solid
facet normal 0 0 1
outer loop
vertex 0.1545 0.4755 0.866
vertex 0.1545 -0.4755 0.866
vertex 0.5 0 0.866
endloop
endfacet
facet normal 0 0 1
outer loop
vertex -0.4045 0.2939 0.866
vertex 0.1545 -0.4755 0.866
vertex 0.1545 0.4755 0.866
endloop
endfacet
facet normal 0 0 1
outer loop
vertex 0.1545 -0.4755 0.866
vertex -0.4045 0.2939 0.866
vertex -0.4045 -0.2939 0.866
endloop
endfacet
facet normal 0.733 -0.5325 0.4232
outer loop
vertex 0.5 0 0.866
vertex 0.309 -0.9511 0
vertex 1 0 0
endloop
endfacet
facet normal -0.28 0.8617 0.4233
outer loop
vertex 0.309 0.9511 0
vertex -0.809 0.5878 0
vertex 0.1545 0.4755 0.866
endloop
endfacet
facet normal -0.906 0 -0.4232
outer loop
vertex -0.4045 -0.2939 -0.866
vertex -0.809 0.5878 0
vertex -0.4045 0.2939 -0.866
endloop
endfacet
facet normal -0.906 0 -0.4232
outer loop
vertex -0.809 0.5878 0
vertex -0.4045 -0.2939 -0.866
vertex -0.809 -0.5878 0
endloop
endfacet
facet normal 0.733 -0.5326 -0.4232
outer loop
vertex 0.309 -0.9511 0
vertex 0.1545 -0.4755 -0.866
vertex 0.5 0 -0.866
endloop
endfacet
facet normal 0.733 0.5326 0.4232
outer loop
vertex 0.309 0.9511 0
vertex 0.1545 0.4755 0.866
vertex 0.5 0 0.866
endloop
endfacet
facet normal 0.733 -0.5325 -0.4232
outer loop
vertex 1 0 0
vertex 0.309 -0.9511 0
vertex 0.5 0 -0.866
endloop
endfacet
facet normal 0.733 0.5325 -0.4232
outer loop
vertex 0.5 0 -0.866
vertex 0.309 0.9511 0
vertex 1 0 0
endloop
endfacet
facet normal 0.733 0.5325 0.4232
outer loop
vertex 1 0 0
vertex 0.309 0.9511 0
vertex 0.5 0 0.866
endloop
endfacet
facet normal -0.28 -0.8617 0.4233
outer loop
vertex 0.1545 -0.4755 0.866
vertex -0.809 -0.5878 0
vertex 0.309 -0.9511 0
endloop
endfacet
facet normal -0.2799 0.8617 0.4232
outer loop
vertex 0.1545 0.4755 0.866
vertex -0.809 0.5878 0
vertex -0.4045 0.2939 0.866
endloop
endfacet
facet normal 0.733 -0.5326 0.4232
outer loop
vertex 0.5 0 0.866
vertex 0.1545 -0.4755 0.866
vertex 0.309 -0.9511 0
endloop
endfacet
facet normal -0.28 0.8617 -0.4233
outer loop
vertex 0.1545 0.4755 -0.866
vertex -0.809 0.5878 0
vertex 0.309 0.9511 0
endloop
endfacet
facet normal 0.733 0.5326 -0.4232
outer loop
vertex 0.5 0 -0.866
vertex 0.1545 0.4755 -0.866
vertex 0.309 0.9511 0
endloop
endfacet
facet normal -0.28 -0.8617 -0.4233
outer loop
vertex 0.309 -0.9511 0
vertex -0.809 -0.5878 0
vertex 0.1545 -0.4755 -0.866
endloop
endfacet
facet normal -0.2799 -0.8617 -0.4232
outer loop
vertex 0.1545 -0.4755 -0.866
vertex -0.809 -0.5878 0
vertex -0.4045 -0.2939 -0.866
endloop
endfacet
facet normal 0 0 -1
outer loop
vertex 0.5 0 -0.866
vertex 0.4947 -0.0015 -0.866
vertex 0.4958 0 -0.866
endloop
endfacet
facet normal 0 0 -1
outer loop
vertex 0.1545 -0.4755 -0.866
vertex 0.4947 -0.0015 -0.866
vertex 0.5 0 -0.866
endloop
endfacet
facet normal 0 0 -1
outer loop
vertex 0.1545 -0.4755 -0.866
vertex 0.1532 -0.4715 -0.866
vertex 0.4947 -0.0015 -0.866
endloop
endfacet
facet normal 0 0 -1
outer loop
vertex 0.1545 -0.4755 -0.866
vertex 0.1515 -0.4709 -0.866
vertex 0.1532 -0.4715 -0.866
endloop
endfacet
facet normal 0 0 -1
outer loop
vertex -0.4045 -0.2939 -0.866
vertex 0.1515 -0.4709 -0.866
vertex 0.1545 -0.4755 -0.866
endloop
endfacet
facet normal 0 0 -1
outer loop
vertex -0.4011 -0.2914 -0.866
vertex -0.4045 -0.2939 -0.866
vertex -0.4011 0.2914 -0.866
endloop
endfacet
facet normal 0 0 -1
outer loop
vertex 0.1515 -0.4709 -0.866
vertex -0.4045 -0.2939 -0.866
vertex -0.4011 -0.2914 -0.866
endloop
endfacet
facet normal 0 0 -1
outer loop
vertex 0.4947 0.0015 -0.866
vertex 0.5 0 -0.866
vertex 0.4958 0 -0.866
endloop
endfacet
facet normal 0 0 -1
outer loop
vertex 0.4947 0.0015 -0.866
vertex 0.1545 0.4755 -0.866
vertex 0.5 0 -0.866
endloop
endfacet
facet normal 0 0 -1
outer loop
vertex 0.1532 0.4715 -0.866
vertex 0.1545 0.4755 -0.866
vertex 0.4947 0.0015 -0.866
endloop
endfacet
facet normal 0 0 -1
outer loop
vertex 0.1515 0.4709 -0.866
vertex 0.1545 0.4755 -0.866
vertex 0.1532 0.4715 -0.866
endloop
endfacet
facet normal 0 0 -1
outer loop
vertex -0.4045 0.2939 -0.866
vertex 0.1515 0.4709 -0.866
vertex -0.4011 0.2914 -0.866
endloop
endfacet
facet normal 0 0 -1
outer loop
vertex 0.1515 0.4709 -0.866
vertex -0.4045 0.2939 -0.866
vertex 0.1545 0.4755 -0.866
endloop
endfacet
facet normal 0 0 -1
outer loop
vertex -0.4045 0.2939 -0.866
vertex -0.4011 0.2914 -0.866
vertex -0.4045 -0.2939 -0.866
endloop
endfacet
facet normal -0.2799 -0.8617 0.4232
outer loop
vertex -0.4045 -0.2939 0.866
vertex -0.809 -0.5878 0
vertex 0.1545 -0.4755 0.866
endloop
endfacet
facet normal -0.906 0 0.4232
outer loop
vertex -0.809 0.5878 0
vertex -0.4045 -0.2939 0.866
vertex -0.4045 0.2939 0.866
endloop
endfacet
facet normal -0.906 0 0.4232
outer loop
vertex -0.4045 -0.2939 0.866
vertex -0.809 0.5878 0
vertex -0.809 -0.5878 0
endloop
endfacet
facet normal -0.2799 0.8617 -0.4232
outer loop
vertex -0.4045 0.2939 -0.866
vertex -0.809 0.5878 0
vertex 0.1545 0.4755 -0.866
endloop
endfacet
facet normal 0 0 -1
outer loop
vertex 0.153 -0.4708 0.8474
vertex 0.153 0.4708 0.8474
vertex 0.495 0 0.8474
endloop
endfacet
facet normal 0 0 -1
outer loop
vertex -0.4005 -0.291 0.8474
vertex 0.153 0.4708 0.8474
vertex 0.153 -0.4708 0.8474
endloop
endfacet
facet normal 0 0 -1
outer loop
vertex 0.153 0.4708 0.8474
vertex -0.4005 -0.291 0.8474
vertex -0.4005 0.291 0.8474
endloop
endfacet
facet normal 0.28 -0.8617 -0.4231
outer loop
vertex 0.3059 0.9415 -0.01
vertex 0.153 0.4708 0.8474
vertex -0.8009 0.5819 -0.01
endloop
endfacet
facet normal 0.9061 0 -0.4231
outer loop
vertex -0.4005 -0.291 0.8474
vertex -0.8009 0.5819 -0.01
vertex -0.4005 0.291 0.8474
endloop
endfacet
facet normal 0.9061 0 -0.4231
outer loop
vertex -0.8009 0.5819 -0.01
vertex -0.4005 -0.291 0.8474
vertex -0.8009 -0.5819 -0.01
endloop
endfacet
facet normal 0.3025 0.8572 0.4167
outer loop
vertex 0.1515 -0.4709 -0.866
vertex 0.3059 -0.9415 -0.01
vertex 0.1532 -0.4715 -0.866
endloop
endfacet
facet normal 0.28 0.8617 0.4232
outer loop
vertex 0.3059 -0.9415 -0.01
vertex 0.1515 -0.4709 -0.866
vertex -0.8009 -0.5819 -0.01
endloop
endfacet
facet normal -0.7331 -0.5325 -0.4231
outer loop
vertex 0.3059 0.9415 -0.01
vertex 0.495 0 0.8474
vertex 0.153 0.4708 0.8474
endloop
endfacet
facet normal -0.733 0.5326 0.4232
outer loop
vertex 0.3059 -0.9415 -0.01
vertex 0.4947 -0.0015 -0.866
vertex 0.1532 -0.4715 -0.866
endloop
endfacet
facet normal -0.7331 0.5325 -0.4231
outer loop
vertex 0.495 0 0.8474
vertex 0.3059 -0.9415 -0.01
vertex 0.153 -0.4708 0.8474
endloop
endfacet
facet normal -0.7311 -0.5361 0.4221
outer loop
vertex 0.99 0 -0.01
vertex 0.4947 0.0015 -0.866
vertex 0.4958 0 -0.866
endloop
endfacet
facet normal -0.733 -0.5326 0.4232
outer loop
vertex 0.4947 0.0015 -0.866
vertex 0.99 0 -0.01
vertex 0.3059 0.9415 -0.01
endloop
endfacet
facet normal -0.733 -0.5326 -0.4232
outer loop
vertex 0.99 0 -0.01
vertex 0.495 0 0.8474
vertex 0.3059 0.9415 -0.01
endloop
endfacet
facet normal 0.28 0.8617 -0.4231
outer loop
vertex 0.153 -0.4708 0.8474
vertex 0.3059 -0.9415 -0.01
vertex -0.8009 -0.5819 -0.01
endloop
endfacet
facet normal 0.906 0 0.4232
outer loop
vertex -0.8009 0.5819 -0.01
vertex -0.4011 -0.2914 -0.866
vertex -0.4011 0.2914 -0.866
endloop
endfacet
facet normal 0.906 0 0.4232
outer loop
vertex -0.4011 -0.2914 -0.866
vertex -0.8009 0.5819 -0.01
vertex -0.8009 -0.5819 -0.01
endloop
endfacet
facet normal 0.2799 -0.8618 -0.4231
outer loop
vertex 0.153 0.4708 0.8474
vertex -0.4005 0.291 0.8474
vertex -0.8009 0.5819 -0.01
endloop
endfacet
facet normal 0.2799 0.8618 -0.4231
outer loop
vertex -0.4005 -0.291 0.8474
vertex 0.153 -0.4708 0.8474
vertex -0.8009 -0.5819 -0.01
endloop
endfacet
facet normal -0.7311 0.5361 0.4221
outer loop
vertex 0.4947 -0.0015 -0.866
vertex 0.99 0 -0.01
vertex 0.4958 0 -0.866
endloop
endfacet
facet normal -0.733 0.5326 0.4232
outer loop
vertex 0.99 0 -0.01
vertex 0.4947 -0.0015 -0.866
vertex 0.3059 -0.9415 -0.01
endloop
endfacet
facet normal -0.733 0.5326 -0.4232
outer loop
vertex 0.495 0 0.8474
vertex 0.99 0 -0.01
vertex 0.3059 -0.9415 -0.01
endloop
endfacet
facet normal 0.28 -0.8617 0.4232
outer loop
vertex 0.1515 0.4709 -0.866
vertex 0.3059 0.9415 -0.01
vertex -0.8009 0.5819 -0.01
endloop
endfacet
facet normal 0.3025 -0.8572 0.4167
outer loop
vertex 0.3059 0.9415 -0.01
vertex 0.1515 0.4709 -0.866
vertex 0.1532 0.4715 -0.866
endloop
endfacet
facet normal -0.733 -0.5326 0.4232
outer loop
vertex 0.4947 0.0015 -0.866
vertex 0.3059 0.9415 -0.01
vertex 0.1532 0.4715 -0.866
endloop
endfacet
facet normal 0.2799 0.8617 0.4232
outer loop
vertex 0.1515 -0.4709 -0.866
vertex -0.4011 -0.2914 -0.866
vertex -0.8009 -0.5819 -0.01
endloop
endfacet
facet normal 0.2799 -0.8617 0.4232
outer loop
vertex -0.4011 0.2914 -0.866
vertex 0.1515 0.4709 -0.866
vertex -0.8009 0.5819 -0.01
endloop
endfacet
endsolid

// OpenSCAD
difference() {
  sphere(r=1);
  translate([0,0,-0.01]) sphere(r=1 - 0.01);
}
